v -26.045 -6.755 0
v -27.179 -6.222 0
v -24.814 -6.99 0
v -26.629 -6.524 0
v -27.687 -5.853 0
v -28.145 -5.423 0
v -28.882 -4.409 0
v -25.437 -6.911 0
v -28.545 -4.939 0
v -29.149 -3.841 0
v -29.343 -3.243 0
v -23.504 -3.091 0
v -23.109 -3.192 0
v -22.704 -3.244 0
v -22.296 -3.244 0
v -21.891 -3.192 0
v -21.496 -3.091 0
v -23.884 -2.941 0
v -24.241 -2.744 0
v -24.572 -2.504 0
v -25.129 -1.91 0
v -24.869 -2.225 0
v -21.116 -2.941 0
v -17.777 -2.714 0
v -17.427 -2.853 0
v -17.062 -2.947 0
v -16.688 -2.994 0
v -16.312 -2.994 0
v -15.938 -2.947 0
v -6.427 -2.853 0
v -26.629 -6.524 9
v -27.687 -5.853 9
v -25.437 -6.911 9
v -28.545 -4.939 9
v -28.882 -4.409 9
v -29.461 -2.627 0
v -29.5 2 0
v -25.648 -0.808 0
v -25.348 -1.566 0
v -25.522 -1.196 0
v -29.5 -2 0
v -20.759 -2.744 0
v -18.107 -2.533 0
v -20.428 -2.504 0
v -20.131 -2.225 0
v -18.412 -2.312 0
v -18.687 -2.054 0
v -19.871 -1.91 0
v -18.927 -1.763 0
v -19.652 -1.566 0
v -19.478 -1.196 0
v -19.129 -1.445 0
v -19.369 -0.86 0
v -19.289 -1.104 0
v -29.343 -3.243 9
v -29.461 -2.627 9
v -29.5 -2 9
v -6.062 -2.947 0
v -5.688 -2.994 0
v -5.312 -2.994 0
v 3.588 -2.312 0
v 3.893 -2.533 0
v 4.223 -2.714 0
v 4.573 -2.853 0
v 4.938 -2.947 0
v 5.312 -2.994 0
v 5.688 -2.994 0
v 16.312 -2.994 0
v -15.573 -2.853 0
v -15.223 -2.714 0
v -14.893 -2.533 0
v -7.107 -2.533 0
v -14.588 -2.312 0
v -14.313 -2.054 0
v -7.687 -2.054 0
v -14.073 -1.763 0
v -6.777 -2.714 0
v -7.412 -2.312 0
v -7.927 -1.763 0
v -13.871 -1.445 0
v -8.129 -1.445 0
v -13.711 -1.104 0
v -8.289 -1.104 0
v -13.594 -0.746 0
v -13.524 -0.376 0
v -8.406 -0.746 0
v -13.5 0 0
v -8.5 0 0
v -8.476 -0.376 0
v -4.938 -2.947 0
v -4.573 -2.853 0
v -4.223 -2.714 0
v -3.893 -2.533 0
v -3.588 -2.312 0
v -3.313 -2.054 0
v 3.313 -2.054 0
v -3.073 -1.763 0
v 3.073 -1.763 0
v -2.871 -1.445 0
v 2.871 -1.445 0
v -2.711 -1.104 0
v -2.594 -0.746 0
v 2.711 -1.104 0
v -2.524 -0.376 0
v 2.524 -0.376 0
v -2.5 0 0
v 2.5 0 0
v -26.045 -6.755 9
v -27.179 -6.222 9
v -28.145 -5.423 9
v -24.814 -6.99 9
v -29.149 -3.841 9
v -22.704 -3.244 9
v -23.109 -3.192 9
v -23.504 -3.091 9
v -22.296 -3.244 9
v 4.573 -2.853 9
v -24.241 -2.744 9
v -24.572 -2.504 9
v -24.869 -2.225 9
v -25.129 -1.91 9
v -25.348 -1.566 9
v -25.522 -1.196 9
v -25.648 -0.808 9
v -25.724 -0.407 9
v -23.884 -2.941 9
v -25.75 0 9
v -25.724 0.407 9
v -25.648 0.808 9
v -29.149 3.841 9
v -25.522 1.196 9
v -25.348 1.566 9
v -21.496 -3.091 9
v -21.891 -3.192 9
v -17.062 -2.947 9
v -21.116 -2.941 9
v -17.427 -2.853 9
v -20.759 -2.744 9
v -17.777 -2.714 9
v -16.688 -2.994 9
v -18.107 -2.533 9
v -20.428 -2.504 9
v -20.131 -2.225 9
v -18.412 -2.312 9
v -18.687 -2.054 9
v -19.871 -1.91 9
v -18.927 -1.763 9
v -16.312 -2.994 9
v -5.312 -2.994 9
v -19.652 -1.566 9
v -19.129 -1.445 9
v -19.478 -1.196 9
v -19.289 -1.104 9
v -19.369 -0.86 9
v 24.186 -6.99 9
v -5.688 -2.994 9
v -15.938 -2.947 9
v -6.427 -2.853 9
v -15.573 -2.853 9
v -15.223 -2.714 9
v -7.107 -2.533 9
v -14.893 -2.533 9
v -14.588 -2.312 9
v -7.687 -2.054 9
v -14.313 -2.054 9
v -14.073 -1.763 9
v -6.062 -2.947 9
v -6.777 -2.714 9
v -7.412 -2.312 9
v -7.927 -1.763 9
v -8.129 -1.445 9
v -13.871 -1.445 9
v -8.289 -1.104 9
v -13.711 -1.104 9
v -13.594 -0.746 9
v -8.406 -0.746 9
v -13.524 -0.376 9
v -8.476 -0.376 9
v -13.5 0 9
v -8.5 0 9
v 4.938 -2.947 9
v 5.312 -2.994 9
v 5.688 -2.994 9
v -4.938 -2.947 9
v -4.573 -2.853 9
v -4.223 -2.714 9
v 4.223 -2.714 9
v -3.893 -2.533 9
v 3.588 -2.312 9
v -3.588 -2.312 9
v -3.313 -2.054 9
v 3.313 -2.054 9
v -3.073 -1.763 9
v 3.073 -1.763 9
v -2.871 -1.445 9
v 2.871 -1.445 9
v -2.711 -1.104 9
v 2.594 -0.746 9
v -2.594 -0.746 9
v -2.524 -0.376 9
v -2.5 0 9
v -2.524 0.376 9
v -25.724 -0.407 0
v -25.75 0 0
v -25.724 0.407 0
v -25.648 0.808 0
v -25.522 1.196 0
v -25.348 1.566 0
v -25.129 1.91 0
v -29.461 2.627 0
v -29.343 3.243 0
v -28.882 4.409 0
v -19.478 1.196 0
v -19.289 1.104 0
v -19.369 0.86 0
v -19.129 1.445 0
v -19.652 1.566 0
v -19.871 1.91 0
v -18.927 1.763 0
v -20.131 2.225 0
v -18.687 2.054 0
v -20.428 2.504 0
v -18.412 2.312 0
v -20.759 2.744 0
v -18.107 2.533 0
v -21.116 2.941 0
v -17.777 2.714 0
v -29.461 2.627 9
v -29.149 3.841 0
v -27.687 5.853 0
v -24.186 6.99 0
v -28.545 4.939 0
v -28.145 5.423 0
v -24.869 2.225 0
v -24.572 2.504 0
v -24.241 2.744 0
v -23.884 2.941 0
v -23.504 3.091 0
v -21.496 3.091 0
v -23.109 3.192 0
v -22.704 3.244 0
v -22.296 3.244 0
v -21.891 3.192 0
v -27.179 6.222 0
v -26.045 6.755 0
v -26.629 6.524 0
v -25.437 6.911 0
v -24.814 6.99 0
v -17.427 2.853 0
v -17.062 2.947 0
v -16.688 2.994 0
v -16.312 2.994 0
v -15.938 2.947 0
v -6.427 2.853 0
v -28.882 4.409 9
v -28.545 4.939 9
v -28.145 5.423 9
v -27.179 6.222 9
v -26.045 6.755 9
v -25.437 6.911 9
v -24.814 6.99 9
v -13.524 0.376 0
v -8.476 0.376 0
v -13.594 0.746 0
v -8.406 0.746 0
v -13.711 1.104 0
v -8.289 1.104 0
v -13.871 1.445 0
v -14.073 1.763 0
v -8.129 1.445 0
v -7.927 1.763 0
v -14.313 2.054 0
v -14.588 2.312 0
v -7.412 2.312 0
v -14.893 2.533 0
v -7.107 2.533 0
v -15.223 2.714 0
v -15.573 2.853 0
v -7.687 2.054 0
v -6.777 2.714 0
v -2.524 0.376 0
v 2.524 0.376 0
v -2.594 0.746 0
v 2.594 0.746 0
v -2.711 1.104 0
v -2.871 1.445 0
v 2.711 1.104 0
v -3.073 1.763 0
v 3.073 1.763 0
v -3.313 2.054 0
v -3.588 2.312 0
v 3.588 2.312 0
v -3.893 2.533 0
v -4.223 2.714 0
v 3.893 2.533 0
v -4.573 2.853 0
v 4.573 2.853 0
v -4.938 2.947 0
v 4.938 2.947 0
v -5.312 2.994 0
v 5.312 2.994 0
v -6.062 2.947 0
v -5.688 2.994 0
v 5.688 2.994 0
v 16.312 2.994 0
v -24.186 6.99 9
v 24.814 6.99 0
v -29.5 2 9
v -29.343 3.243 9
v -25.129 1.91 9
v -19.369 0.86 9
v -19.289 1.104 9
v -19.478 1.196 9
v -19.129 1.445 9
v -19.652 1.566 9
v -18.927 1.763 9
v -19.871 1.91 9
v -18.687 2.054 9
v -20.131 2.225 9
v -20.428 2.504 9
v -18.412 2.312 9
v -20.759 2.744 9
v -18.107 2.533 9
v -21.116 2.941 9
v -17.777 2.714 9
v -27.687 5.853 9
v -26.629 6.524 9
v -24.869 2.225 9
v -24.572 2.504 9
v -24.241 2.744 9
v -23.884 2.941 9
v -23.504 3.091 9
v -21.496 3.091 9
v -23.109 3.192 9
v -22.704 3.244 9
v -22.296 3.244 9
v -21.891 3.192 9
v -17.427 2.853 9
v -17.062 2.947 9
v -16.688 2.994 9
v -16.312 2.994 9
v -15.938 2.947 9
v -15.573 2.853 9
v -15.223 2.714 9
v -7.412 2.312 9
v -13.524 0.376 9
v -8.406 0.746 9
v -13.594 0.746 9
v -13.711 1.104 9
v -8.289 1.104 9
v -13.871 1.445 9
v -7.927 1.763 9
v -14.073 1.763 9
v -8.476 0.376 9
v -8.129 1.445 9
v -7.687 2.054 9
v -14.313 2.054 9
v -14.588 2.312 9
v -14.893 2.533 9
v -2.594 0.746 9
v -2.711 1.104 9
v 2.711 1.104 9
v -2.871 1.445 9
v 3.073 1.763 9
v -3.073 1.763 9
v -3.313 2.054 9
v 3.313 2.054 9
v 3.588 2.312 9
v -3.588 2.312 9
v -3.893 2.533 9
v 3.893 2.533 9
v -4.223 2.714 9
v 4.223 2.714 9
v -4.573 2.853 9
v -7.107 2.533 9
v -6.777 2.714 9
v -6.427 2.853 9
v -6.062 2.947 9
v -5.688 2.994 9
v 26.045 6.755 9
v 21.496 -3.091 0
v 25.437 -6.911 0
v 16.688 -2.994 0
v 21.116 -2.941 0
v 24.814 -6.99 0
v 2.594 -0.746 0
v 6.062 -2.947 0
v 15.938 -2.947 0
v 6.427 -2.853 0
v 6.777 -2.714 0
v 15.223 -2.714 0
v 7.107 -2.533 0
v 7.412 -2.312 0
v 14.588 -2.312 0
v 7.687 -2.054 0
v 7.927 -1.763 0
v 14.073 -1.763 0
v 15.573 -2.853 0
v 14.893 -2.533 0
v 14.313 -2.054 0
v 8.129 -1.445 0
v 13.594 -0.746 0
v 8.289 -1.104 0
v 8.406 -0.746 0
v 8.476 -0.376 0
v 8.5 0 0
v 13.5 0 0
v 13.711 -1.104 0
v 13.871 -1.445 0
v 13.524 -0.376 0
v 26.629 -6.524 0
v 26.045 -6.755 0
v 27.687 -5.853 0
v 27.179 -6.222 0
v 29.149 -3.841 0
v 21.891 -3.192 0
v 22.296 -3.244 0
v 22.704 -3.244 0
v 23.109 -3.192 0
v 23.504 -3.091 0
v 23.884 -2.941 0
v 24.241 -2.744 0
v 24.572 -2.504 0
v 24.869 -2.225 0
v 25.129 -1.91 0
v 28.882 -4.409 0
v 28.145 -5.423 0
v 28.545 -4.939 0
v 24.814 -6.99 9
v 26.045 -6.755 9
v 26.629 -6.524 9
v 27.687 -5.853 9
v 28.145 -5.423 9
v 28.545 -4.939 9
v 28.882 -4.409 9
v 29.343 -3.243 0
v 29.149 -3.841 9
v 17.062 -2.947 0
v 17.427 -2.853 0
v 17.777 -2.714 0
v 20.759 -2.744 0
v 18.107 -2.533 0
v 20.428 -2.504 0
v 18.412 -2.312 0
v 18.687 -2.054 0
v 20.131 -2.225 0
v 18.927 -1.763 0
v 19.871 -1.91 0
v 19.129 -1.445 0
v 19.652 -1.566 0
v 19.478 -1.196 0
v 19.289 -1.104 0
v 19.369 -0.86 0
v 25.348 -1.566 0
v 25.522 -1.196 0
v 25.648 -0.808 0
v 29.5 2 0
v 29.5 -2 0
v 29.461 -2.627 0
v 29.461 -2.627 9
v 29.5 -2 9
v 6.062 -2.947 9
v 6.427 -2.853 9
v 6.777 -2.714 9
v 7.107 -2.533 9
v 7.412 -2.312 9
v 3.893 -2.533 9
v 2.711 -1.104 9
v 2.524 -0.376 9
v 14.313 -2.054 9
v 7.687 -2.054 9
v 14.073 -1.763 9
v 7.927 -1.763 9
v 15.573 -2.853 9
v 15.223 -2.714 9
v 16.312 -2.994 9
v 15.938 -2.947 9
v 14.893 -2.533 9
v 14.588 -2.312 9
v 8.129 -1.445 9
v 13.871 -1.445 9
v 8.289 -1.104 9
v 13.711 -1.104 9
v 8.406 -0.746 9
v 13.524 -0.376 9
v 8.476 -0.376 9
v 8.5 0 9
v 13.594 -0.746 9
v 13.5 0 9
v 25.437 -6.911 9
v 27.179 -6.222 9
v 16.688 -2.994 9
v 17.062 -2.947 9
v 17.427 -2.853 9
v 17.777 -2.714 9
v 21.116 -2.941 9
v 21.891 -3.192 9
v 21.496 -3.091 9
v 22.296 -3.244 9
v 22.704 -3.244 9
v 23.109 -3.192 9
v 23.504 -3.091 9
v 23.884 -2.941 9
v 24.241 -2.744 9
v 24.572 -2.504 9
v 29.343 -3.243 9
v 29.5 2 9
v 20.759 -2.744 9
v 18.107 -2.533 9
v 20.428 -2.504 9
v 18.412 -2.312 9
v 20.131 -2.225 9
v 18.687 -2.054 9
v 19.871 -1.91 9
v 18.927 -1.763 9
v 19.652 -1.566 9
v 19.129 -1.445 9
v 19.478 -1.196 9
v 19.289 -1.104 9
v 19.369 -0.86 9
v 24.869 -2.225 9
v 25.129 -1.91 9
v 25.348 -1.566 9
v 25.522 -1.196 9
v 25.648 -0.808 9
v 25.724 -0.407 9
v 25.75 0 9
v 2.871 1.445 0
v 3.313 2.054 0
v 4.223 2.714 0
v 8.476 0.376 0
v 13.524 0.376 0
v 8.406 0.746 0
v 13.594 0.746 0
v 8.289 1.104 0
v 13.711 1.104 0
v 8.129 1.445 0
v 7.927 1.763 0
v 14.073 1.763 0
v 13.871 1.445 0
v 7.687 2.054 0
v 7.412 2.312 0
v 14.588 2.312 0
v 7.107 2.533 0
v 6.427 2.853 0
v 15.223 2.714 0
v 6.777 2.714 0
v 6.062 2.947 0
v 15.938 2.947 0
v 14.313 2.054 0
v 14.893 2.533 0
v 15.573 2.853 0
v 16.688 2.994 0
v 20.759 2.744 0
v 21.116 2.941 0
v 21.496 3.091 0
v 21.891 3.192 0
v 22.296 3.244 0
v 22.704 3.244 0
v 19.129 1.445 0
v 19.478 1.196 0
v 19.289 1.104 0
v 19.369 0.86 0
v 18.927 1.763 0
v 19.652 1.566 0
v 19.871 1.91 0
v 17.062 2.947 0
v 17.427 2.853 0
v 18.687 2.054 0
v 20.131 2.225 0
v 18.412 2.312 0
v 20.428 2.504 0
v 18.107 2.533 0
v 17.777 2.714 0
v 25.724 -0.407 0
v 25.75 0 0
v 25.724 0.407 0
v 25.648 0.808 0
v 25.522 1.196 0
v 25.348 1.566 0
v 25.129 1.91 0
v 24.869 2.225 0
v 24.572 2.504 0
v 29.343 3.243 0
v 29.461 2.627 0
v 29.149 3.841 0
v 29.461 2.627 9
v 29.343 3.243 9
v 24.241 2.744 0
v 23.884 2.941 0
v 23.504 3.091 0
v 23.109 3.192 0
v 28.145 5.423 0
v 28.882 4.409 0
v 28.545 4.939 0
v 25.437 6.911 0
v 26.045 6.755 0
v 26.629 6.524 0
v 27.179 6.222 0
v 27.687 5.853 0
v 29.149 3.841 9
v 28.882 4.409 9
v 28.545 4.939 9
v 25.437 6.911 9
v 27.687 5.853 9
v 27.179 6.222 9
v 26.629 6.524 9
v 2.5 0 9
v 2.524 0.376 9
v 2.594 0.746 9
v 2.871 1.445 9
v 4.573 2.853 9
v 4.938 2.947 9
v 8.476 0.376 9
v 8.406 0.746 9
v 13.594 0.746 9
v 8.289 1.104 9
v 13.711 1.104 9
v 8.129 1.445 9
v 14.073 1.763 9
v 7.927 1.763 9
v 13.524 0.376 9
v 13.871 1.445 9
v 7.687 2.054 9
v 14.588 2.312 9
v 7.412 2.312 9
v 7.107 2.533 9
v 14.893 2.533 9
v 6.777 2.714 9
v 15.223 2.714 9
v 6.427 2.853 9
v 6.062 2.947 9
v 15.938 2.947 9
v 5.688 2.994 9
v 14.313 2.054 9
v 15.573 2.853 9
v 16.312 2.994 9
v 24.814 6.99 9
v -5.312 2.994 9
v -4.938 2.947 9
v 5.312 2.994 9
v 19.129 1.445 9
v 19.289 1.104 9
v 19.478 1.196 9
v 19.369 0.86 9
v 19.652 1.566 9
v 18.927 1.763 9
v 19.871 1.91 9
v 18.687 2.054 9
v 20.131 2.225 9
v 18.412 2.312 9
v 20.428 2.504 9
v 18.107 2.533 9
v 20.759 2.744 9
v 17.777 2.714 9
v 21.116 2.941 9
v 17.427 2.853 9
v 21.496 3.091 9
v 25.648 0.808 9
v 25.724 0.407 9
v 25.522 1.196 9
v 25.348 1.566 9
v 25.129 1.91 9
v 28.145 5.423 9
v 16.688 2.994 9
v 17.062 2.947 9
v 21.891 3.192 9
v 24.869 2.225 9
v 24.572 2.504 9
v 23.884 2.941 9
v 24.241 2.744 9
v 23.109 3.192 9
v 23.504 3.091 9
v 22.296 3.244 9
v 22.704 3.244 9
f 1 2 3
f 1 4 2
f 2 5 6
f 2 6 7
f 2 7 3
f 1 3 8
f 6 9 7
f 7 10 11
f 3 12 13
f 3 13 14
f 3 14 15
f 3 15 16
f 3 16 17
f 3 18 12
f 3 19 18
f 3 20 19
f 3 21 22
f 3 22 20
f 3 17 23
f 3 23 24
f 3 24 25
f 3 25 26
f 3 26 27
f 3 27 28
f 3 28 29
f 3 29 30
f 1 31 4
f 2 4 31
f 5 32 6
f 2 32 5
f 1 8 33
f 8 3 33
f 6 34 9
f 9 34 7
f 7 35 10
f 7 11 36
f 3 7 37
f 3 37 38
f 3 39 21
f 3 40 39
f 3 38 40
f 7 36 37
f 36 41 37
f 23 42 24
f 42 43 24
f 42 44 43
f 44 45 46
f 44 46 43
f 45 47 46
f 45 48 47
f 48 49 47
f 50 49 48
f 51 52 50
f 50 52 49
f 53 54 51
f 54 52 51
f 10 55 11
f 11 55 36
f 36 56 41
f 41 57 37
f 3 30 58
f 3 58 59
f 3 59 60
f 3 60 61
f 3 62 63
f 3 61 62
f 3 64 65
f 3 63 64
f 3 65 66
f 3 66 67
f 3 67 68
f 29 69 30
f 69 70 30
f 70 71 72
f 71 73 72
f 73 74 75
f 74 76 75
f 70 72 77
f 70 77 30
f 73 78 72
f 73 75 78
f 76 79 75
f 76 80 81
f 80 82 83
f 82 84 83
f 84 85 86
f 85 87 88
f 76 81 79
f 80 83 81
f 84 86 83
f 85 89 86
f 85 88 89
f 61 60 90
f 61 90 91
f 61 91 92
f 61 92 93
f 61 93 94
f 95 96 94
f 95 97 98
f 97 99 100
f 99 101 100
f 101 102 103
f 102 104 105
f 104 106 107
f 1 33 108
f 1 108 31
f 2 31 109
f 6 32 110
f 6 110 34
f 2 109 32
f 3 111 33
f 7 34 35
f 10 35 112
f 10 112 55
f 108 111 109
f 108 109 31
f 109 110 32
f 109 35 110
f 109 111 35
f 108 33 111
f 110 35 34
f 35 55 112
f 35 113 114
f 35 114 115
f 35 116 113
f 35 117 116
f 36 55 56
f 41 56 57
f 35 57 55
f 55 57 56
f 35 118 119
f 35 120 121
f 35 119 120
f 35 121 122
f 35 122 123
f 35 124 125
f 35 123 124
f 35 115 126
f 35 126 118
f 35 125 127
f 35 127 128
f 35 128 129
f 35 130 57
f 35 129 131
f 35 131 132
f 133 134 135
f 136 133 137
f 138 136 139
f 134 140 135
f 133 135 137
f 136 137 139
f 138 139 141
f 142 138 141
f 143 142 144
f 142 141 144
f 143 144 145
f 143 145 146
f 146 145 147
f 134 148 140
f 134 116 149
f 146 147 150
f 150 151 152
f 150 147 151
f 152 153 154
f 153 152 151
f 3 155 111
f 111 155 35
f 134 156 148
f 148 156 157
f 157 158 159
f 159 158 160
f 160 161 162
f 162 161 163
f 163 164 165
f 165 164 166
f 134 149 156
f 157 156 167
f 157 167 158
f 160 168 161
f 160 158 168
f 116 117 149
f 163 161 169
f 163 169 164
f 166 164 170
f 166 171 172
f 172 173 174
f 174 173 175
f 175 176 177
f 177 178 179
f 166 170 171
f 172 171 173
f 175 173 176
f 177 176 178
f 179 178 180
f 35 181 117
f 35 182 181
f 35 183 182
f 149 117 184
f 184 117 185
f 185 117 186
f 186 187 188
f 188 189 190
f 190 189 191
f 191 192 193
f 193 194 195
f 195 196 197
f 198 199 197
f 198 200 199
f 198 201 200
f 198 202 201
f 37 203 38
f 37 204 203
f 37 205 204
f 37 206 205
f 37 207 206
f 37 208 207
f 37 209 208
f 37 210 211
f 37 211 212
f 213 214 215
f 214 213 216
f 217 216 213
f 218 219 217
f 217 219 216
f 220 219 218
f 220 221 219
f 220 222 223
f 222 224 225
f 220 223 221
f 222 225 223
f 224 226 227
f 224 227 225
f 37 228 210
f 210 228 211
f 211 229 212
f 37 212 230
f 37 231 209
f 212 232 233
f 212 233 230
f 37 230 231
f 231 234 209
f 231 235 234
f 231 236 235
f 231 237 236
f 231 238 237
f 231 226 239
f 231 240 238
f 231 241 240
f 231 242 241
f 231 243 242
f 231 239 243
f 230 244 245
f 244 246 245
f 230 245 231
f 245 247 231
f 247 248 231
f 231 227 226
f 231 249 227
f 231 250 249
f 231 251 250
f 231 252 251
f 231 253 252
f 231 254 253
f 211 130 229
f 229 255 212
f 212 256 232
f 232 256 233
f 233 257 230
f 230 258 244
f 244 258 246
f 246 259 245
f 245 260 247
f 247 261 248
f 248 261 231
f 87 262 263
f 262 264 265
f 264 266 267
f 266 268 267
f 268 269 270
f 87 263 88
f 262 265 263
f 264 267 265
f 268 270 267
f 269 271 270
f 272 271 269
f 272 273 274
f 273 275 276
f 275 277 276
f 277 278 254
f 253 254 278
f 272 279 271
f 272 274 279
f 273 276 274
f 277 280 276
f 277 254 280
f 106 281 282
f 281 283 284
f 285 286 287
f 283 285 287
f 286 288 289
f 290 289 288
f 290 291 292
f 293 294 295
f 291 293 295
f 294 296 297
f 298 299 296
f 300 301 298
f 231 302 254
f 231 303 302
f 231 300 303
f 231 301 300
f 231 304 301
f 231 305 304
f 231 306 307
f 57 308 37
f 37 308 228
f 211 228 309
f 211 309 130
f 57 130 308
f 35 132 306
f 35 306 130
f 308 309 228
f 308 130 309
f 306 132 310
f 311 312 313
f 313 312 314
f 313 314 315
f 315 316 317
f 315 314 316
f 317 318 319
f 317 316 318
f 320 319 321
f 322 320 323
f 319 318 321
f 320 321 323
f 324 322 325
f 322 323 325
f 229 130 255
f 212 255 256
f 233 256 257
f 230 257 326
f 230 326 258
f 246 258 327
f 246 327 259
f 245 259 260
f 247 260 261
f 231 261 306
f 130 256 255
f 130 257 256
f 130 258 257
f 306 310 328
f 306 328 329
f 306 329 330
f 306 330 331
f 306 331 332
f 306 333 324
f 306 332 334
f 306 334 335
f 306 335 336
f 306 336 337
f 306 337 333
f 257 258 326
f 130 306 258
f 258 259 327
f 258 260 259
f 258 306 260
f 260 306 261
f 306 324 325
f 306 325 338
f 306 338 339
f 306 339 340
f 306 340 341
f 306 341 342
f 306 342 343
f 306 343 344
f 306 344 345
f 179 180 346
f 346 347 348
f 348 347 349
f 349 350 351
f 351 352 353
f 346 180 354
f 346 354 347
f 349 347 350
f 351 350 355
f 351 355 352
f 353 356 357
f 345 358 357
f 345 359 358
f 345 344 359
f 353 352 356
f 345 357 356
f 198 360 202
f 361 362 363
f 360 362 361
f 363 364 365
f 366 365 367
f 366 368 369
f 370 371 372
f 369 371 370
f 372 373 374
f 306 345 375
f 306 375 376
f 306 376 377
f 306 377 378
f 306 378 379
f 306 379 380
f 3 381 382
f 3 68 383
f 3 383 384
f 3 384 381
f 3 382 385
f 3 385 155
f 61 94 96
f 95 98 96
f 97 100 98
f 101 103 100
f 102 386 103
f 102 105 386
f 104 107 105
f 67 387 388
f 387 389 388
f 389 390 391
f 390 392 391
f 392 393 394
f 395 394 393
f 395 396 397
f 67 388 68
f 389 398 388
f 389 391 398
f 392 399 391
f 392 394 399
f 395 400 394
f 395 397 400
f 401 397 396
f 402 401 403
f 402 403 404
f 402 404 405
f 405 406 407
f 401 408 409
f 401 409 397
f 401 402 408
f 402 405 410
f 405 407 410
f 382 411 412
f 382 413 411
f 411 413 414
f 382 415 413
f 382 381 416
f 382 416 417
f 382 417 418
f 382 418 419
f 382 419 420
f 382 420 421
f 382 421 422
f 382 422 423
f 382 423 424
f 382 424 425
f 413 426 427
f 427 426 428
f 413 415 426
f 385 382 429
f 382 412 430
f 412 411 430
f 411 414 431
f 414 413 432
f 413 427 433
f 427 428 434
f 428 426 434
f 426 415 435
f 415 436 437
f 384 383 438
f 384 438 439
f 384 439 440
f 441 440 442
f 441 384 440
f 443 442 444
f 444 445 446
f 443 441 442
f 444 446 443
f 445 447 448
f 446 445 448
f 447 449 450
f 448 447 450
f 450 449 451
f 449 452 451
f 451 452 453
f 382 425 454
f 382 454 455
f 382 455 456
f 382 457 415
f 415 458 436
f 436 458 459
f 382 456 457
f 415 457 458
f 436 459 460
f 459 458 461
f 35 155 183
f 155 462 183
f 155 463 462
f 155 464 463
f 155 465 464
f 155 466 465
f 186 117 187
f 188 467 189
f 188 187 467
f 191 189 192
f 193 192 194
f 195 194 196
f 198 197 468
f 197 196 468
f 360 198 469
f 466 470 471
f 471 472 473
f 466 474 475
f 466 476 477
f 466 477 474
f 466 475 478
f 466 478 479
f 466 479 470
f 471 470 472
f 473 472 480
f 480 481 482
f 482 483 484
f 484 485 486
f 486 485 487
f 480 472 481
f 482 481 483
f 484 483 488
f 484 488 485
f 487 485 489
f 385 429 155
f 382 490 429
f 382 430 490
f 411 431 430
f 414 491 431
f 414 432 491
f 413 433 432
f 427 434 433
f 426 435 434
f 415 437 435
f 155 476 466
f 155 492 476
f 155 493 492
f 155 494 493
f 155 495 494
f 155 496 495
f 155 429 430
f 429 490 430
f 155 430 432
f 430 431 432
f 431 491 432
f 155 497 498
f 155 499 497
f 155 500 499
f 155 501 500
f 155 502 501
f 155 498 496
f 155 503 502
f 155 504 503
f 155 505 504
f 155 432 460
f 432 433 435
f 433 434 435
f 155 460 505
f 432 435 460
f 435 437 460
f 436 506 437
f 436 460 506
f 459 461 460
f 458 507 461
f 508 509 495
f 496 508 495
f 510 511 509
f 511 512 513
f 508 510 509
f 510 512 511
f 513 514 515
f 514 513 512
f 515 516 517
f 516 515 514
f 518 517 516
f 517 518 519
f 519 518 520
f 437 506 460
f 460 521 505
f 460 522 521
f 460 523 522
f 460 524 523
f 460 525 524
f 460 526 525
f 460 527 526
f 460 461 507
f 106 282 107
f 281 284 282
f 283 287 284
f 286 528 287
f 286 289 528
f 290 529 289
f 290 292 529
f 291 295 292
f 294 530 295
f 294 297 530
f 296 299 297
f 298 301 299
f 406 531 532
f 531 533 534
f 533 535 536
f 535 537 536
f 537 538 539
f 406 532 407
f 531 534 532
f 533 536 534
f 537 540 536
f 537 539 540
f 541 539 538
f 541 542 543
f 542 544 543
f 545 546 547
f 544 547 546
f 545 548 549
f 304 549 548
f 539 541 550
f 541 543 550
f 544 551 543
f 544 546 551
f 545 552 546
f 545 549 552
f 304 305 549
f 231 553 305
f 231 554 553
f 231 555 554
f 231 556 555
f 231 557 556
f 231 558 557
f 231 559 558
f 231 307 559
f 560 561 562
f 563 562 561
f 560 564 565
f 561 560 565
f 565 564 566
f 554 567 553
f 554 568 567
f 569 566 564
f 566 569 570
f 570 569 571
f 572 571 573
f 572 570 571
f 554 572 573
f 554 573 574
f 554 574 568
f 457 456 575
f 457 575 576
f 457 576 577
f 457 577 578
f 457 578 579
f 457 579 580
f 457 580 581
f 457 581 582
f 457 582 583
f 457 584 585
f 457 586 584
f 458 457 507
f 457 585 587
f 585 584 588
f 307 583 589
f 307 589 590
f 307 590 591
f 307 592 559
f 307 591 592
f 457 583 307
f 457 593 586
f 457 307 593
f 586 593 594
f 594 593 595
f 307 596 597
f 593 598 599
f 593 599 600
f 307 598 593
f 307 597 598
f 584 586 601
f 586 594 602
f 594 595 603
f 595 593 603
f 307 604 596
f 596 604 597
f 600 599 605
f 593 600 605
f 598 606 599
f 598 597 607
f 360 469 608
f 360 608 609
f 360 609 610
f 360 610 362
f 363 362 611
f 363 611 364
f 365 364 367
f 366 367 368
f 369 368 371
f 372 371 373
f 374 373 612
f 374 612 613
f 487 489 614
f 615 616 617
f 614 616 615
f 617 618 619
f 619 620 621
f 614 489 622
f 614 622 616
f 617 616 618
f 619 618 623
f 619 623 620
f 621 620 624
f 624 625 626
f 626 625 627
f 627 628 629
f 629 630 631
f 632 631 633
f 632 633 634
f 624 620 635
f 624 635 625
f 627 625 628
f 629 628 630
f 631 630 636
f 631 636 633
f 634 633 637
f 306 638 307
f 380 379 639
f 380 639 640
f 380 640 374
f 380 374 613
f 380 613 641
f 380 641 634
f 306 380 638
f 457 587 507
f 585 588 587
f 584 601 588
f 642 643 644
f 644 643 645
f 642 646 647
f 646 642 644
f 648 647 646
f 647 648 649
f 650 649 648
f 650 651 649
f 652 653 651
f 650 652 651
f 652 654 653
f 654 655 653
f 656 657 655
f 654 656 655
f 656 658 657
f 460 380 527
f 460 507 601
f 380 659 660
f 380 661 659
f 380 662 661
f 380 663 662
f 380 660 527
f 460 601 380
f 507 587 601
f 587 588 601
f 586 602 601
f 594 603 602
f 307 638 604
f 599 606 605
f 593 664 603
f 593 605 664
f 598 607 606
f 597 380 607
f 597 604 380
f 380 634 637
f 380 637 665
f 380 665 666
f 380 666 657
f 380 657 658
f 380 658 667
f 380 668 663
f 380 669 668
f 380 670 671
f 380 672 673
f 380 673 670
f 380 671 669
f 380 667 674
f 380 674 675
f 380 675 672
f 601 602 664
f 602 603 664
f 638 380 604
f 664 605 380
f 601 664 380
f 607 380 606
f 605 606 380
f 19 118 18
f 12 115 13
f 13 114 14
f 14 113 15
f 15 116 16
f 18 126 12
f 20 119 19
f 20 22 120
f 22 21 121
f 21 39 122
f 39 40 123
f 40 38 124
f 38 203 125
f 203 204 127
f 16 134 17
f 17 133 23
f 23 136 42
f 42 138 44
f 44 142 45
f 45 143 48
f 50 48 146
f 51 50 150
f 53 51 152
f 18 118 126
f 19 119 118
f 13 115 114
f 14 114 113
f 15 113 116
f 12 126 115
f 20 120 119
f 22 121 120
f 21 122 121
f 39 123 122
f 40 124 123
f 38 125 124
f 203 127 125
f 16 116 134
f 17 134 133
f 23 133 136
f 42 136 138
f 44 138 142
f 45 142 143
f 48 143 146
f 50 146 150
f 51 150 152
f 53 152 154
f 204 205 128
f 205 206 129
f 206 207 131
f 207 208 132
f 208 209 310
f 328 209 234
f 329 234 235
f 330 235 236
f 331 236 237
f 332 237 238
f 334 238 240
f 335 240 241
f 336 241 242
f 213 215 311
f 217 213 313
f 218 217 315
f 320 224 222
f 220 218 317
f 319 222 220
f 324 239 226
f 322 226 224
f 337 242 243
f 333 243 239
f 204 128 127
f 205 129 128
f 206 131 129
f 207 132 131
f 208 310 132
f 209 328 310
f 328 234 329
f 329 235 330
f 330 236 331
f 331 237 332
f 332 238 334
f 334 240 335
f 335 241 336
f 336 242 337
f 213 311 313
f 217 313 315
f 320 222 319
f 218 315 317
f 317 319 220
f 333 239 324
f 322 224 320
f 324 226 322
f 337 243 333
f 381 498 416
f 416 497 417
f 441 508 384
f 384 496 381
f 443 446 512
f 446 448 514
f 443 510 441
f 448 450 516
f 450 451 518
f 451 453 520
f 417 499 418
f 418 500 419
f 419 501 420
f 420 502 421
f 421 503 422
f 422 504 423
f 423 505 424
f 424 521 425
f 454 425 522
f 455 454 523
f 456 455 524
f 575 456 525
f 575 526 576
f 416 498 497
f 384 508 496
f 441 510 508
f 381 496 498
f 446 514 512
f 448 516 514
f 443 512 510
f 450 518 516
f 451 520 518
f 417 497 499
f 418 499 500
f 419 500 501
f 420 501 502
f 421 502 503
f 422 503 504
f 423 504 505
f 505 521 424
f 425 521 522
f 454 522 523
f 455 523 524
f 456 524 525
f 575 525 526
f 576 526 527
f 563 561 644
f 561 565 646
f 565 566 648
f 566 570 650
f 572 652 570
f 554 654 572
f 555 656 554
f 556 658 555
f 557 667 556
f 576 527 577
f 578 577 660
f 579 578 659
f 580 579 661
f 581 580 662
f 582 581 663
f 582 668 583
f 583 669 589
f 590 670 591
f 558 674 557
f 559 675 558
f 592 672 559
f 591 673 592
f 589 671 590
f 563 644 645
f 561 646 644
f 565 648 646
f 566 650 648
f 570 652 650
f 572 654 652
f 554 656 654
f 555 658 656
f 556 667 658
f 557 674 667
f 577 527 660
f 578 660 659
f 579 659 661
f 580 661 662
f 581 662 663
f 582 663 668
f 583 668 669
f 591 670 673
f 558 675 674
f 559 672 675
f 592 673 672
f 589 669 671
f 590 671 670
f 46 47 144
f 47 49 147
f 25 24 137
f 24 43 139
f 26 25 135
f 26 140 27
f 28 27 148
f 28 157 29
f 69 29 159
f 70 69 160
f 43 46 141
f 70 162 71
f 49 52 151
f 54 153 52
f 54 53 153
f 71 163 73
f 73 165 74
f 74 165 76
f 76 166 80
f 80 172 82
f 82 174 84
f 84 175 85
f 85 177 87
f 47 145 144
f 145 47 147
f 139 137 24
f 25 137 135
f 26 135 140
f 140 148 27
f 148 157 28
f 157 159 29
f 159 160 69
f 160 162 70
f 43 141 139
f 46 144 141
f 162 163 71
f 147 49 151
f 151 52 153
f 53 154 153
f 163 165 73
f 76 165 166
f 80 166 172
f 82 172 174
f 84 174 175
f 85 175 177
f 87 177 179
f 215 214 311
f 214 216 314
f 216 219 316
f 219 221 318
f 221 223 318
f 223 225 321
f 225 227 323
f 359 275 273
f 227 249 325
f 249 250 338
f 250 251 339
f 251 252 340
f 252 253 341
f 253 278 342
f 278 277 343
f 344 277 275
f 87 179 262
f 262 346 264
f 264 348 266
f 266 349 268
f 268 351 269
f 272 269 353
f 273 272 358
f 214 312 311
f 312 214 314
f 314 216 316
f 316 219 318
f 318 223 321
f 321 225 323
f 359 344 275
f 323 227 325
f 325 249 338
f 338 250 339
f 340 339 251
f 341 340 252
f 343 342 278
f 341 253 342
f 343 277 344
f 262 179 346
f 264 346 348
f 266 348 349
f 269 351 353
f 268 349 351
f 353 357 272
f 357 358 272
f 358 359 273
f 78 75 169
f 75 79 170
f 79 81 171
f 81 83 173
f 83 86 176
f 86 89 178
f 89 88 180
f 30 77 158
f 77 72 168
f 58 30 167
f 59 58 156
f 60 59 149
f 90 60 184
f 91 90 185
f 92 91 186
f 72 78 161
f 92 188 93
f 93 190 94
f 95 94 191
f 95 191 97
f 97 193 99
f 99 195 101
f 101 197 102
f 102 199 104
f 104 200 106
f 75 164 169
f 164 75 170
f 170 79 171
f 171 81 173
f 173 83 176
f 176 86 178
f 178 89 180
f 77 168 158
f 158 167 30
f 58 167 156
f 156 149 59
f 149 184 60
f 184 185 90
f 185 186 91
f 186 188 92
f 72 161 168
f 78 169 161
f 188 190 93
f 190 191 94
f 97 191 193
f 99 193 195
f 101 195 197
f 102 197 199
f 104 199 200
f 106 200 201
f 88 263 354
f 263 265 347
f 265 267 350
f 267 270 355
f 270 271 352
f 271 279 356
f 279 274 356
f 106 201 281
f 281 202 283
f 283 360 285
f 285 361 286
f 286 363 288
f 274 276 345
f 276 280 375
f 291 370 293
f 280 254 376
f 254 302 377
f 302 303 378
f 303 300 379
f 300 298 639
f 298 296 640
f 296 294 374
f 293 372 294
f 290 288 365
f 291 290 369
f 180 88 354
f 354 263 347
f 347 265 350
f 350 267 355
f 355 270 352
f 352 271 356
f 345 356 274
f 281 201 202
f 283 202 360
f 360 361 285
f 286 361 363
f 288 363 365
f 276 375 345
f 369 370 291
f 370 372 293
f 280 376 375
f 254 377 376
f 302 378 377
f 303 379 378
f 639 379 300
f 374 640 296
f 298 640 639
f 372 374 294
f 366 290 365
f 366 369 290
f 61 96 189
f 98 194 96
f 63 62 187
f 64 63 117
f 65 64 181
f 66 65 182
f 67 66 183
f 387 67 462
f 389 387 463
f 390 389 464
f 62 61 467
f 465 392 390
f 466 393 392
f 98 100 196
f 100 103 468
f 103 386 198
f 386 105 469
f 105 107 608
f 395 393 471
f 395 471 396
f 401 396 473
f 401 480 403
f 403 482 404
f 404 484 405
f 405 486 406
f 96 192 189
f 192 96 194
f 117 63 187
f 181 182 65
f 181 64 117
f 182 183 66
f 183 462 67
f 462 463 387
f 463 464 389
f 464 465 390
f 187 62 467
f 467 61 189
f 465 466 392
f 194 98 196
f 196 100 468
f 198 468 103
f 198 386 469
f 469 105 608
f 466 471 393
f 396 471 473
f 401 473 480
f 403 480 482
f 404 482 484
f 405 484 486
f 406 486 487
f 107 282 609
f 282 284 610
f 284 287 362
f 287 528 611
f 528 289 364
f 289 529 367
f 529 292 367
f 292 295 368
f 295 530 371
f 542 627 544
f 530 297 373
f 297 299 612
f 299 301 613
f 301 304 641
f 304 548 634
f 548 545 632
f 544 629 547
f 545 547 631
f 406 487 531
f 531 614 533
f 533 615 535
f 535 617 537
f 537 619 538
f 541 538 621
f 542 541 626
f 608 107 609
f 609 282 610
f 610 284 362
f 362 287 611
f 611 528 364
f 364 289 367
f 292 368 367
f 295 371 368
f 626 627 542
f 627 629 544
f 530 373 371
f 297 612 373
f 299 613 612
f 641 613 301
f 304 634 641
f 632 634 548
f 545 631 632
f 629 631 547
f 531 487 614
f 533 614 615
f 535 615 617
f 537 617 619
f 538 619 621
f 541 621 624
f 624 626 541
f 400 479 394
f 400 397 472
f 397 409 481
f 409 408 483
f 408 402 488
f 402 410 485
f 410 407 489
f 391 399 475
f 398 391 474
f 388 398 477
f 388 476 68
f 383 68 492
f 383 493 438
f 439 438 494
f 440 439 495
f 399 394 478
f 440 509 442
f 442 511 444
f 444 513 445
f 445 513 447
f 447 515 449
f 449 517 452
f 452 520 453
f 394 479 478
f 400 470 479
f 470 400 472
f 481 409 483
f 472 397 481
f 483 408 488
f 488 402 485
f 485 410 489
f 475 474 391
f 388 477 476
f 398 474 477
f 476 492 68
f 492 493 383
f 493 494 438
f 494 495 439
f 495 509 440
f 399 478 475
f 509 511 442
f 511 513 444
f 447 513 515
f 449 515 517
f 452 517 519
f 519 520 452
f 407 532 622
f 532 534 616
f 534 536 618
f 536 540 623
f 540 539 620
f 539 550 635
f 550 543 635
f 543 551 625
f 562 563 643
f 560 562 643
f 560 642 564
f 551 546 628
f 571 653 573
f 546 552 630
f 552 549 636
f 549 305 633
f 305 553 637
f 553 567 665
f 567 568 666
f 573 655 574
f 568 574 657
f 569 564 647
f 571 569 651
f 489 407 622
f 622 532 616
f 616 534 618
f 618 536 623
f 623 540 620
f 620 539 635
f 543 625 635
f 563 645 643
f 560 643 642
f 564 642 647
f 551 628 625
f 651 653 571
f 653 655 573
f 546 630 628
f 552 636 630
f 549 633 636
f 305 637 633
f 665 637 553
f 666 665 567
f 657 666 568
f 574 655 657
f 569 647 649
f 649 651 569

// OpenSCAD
$fn = 50;

difference() {
	union() {
		hull() {
			translate(v = [-24.5, 2.0, 0]) {
				cylinder(h = 9, r = 5);
			}
			translate(v = [24.5, 2.0, 0]) {
				cylinder(h = 9, r = 5);
			}
			translate(v = [-24.5, -2.0, 0]) {
				cylinder(h = 9, r = 5);
			}
			translate(v = [24.5, -2.0, 0]) {
				cylinder(h = 9, r = 5);
			}
		}
	}
	union() {
		translate(v = [-22.5, 0.0, -100.0]) {
			cylinder(h = 200, r = 3.25);
		}
		translate(v = [22.5, 0.0, -100.0]) {
			cylinder(h = 200, r = 3.25);
		}
		translate(v = [-22.5, 0.0, -100.0]) {
			cylinder(h = 200, r = 1.8);
		}
		translate(v = [22.5, 0.0, -100.0]) {
			cylinder(h = 200, r = 1.8);
		}
		translate(v = [-16.5, 0, 0.0]) {
			cylinder(h = 9, r = 3.0);
		}
		translate(v = [-5.5, 0, 0.0]) {
			cylinder(h = 9, r = 3.0);
		}
		translate(v = [5.5, 0, 0.0]) {
			cylinder(h = 9, r = 3.0);
		}
		translate(v = [16.5, 0, 0.0]) {
			cylinder(h = 9, r = 3.0);
		}
	}
}
